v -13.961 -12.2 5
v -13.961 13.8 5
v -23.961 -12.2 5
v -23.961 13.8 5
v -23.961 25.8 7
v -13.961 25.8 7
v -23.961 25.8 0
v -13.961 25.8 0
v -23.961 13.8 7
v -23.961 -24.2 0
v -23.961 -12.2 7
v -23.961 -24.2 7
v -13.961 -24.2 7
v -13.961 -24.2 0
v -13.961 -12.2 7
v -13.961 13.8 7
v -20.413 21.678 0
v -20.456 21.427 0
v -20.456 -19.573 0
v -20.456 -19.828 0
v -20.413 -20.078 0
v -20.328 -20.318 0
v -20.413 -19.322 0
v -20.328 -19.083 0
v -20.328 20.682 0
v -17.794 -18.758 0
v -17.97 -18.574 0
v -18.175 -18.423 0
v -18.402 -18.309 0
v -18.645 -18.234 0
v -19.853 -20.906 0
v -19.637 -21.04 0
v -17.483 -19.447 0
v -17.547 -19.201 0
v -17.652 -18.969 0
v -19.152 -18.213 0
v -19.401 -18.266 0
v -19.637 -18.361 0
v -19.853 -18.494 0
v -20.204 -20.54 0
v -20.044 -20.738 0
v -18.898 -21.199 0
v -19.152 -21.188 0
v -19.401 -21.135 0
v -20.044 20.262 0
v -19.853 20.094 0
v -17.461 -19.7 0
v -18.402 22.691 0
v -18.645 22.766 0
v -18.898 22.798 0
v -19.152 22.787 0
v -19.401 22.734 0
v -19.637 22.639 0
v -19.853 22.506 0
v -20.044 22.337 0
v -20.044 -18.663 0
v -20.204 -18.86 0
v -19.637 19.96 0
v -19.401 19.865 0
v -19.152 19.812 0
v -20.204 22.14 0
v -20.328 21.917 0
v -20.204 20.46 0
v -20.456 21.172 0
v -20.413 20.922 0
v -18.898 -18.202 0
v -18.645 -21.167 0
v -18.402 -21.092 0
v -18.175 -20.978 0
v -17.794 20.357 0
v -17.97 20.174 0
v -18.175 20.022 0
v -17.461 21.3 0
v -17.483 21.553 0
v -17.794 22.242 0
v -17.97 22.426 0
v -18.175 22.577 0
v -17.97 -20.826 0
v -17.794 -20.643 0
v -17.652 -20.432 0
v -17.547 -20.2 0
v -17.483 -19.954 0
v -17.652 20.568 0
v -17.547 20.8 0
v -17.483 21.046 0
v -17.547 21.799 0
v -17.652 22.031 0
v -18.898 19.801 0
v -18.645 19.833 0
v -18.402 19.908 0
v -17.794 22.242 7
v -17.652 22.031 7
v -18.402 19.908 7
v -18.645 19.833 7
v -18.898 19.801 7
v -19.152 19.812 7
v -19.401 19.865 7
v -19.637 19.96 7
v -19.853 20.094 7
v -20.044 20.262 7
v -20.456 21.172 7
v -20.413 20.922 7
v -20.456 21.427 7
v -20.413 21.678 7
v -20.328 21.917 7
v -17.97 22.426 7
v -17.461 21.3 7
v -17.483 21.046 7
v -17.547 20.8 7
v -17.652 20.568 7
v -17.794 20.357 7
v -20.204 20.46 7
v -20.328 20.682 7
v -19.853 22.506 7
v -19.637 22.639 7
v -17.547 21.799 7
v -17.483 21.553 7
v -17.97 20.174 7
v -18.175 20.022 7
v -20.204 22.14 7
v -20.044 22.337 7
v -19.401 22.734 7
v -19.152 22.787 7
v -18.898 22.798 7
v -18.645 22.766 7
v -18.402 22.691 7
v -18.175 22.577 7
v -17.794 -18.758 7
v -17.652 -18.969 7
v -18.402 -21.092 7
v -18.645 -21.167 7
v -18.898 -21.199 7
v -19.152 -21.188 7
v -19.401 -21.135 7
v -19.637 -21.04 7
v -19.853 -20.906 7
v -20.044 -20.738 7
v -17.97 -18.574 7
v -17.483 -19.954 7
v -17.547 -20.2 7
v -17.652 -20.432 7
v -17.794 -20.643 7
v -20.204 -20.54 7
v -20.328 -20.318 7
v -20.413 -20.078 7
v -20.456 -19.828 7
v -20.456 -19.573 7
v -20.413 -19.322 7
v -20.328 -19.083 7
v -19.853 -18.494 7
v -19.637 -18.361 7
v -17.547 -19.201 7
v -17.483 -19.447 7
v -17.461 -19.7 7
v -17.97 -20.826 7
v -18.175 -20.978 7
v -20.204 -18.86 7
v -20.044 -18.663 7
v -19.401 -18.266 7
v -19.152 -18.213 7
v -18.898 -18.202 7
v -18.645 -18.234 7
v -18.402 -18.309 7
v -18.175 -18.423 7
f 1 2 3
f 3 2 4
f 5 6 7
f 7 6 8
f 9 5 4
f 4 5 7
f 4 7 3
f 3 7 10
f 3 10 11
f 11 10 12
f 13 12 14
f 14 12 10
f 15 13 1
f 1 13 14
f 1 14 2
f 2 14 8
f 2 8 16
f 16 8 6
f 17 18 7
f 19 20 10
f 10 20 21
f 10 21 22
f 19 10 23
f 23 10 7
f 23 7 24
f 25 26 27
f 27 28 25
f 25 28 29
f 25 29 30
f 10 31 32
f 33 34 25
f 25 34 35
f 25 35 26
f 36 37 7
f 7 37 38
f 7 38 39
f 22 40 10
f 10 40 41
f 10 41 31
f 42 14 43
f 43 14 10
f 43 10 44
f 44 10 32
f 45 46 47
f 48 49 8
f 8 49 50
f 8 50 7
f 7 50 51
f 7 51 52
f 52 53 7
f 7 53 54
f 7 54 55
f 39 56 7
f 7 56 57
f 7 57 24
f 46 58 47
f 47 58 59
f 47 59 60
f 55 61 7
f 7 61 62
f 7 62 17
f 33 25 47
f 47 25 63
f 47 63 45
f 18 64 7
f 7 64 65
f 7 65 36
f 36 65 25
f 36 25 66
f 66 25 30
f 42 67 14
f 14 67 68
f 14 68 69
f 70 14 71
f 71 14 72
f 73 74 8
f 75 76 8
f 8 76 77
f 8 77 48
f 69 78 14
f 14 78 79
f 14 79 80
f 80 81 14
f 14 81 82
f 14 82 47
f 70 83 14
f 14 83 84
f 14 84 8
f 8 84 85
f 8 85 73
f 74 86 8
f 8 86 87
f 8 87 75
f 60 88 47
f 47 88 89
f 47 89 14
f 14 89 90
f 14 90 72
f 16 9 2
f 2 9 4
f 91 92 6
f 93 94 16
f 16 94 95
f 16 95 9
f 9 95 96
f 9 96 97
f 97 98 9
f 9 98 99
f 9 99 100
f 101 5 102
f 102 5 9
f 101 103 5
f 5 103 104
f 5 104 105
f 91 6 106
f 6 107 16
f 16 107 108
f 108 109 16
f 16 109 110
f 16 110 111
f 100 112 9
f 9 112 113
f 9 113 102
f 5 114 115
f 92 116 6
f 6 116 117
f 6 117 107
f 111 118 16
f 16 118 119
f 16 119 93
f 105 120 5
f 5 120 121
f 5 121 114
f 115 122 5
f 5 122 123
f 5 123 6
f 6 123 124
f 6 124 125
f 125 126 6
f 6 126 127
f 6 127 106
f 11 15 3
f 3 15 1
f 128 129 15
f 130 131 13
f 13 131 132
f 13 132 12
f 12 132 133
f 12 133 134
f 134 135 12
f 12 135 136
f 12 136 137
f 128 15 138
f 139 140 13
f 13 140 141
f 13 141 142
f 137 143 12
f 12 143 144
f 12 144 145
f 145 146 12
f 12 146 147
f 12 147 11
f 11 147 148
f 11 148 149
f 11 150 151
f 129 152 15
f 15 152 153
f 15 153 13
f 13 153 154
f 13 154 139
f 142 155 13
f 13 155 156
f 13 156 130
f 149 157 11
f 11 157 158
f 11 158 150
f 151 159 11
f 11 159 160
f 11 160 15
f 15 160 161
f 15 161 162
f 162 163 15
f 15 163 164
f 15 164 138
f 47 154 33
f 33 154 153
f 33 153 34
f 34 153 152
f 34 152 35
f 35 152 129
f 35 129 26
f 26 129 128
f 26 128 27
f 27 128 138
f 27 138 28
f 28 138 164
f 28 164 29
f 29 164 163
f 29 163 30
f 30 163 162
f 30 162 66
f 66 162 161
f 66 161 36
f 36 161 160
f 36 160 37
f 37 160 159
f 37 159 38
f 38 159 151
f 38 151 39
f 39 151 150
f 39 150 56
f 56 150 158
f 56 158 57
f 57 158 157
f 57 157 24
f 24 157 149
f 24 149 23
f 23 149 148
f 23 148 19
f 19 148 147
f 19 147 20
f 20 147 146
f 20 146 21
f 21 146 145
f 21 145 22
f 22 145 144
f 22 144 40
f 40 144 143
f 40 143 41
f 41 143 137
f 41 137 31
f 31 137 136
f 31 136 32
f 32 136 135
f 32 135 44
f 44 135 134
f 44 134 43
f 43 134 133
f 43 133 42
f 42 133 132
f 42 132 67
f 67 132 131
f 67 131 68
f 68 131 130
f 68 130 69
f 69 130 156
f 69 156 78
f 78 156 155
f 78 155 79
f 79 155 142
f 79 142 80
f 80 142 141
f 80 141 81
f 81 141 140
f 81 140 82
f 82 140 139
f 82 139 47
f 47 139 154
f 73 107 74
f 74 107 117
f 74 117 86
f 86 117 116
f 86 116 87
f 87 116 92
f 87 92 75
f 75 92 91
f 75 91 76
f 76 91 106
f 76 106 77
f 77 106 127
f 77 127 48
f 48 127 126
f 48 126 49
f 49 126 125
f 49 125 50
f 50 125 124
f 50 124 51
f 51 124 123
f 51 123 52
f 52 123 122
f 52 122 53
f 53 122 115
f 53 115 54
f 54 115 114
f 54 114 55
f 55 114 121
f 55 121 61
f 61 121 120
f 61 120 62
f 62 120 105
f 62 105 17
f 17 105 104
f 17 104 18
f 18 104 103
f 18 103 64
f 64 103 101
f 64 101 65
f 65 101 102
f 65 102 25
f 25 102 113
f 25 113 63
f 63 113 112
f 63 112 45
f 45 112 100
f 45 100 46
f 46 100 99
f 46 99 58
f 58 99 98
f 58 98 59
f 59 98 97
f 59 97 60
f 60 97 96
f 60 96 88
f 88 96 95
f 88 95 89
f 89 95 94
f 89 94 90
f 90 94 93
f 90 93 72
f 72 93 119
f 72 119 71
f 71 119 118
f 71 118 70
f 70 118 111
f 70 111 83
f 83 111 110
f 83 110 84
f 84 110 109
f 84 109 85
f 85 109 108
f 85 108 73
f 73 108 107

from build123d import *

# Parameters (mm, degrees)
ESQUISSE1_W             = 10
ESQUISSE1_H             = 50
BOSS_EXTRU_1_DEPTH      = 5
ESQUISSE4_W             = 10
ESQUISSE4_H             = 12
BOSS_EXTRU_2_DEPTH      = 2
ESQUISSE5_W             = 10
ESQUISSE5_H             = 12
BOSS_EXTRU_3_DEPTH      = 2
ESQUISSE7_R             = 1.5
ENL_V_MAT_EXTRU_2_DEPTH = 23.073899885
ESQUISSE8_R             = 1.5
ENL_V_MAT_EXTRU_3_DEPTH = 23.073899885


with BuildPart() as part:
    # Esquisse1 → Boss.-Extru.1 (new body)
    with BuildSketch(Plane.XY):
        with Locations((-18.961277556, 0.799561998)):
            Rectangle(ESQUISSE1_W, ESQUISSE1_H)
    extrude(amount=BOSS_EXTRU_1_DEPTH)

    # Esquisse4 → Boss.-Extru.2 (add)
    with BuildSketch(Plane.XY.offset(5)):
        with Locations((-18.961277556, 19.799561998)):
            Rectangle(ESQUISSE4_W, ESQUISSE4_H)
    extrude(amount=BOSS_EXTRU_2_DEPTH)

    # Esquisse5 → Boss.-Extru.3 (add)
    with BuildSketch(Plane.XY.offset(5)):
        with Locations((-18.961277556, -18.200438002)):
            Rectangle(ESQUISSE5_W, ESQUISSE5_H)
    extrude(amount=BOSS_EXTRU_3_DEPTH)

    # Esquisse7 → Enlèv. mat.-Extru.2 (cut)
    with BuildSketch(Plane.XY.offset(7)):
        with Locations((-18.961277556, -19.700438002)):
            Circle(ESQUISSE7_R)
    extrude(amount=-ENL_V_MAT_EXTRU_2_DEPTH, mode=Mode.SUBTRACT)

    # Esquisse8 → Enlèv. mat.-Extru.3 (cut)
    with BuildSketch(Plane.XY.offset(7)):
        with Locations((-18.961277556, 21.299561998)):
            Circle(ESQUISSE8_R)
    extrude(amount=-ENL_V_MAT_EXTRU_3_DEPTH, mode=Mode.SUBTRACT)


solid = part.part
